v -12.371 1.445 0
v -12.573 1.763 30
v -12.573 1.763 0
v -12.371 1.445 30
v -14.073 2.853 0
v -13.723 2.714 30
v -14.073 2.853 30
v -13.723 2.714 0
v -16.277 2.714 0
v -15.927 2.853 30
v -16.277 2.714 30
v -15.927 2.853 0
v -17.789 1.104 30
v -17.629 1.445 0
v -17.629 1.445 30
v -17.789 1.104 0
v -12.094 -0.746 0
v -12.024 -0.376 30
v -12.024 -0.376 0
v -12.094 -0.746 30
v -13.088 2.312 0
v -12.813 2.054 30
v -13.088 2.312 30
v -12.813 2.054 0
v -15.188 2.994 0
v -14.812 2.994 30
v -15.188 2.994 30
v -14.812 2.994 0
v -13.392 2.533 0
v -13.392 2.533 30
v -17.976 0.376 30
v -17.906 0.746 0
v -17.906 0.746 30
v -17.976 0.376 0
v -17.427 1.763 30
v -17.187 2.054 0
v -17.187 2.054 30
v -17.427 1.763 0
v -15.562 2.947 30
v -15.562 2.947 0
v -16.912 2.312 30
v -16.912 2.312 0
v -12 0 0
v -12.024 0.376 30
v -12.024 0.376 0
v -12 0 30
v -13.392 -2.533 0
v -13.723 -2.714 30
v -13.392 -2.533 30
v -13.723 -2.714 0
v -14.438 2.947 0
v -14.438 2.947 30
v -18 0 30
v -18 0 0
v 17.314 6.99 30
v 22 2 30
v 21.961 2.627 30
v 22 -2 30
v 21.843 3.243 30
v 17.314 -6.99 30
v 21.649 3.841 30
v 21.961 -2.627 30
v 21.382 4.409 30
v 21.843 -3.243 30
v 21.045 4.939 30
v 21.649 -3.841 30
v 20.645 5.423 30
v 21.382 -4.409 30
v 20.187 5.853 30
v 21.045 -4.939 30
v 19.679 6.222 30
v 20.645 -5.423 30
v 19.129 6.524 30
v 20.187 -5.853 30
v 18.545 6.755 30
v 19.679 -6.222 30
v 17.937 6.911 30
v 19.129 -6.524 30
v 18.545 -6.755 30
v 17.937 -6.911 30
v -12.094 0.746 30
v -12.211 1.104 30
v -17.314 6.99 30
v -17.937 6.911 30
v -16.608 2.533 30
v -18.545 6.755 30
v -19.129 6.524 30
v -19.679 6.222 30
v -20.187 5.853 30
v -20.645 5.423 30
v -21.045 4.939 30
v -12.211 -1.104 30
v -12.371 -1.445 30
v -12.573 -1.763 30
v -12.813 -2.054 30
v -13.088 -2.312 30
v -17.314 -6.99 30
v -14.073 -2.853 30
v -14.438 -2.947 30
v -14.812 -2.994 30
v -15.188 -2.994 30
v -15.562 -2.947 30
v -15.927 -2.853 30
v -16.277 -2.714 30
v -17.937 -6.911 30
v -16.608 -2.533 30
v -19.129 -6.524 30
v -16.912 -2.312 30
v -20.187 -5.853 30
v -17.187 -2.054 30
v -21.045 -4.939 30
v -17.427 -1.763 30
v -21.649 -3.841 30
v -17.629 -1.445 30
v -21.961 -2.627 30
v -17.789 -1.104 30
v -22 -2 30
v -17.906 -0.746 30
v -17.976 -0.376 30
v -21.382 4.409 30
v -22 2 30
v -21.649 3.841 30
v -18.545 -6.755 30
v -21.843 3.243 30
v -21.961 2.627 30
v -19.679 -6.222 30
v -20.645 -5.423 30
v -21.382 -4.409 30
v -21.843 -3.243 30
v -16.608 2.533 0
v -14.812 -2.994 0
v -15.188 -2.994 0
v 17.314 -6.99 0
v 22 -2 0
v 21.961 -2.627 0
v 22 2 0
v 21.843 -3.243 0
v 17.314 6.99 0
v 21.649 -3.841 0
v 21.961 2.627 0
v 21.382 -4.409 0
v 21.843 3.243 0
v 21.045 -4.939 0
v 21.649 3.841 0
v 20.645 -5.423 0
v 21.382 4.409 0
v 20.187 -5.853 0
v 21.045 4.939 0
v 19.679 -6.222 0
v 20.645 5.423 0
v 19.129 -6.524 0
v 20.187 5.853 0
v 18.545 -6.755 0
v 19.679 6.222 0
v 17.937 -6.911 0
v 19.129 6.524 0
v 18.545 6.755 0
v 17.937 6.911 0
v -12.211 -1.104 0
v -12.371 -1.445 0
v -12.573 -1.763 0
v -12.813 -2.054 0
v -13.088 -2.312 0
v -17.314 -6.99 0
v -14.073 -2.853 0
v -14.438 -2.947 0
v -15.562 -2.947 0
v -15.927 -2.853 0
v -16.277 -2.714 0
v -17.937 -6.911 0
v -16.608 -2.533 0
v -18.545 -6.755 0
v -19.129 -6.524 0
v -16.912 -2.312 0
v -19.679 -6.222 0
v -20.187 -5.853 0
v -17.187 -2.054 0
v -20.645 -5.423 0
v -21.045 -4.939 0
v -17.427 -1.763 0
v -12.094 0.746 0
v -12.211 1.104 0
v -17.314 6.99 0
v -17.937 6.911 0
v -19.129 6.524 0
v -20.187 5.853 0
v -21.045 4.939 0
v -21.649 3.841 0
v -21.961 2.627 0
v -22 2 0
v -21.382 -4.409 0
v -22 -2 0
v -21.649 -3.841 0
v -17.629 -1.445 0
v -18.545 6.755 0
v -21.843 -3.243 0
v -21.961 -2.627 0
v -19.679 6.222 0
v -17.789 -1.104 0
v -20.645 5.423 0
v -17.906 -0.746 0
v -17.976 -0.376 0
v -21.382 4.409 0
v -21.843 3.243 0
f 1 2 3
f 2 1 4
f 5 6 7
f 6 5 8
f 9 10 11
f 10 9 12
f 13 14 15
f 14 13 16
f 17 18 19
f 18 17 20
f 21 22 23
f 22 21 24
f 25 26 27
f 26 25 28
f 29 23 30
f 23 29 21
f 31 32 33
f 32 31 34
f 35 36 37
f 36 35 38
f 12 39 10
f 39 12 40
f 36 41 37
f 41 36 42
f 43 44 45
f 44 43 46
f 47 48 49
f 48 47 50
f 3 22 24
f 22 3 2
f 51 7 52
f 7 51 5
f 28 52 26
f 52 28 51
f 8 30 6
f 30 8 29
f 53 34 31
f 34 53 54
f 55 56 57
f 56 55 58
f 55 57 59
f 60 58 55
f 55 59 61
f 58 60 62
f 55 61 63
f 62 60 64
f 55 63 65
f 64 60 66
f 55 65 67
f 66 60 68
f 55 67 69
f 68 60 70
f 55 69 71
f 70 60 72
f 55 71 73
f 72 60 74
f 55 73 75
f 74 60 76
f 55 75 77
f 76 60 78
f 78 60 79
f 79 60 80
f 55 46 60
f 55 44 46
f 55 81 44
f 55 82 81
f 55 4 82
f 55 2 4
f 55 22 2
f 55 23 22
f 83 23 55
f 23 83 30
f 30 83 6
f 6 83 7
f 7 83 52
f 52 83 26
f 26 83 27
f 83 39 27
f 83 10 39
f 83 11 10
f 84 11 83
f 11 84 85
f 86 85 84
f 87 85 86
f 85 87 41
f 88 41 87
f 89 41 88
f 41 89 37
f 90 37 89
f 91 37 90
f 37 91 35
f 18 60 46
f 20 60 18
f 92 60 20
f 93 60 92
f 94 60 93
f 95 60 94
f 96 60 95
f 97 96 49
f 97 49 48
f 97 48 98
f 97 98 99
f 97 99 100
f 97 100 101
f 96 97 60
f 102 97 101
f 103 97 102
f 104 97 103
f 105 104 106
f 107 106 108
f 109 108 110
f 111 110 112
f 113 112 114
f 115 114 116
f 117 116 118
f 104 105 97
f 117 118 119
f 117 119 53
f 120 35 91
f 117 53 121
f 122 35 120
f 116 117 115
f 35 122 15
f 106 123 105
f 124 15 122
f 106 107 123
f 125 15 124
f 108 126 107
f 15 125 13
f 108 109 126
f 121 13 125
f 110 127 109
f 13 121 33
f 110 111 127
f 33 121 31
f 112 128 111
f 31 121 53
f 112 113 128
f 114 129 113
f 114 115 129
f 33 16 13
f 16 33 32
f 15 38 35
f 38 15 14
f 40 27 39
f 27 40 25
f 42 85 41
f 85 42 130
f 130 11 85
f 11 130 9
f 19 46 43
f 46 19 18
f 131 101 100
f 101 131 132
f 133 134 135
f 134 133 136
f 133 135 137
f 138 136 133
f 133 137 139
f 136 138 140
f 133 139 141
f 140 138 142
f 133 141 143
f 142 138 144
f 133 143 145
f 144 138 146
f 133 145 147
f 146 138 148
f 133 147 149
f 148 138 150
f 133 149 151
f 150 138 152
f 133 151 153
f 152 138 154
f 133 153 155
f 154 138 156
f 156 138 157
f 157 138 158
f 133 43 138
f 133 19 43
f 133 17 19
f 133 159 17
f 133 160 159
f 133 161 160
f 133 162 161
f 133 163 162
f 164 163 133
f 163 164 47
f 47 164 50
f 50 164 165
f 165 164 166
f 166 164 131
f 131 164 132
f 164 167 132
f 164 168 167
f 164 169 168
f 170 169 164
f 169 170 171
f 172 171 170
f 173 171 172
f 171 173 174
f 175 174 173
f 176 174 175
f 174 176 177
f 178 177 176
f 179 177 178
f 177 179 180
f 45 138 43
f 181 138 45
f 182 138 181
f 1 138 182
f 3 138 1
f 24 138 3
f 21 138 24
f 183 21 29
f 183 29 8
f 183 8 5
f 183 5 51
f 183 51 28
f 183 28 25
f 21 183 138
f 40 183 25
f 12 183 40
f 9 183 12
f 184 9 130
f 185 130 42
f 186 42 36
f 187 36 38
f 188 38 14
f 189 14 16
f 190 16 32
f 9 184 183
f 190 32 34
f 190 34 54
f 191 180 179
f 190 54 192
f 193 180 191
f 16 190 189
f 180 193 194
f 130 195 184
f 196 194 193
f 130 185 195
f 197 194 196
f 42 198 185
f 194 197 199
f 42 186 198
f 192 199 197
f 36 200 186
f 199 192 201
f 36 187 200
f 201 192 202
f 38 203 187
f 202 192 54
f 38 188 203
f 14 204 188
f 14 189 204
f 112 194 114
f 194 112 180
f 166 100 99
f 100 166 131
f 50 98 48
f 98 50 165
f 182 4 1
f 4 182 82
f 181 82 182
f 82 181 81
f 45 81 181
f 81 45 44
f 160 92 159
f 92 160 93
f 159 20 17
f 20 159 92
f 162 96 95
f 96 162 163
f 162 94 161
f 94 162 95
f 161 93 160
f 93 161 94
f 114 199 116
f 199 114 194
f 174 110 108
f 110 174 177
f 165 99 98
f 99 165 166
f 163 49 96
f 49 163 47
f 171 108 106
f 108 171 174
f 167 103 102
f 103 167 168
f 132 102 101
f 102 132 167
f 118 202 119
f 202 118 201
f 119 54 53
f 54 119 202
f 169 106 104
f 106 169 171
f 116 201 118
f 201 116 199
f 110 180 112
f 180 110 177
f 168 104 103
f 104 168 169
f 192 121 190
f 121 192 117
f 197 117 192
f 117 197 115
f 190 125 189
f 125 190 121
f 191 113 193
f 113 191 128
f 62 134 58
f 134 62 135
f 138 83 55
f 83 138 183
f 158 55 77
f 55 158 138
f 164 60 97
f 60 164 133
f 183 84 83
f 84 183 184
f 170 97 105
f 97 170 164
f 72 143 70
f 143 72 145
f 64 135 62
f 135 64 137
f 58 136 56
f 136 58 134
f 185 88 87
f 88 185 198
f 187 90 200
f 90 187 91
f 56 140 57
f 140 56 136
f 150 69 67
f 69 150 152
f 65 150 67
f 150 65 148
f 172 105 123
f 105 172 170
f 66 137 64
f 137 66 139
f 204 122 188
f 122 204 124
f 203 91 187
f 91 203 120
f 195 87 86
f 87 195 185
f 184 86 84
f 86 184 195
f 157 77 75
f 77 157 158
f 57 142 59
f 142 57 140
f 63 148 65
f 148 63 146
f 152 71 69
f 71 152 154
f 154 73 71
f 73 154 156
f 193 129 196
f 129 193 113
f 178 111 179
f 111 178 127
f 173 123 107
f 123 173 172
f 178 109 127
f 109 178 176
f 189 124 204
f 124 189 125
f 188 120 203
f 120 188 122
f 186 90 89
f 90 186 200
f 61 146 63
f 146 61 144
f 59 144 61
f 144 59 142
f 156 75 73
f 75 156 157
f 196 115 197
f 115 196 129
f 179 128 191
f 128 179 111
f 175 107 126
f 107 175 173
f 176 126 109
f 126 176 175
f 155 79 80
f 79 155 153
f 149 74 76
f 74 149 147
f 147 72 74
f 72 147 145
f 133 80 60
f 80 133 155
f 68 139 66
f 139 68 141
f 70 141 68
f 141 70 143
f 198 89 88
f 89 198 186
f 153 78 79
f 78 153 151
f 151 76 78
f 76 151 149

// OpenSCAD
$fn = 50;


difference() {
	union() {
		hull() {
			translate(v = [-17.0000000000, 2.0000000000, 0]) {
				cylinder(h = 30, r = 5);
			}
			translate(v = [17.0000000000, 2.0000000000, 0]) {
				cylinder(h = 30, r = 5);
			}
			translate(v = [-17.0000000000, -2.0000000000, 0]) {
				cylinder(h = 30, r = 5);
			}
			translate(v = [17.0000000000, -2.0000000000, 0]) {
				cylinder(h = 30, r = 5);
			}
		}
	}
	union() {
		translate(v = [-15.0000000000, 0.0000000000, 0]) {
			cylinder(h = 30, r = 3.0000000000);
		}
		translate(v = [-15.0000000000, 0.0000000000, 0]) {
			cylinder(h = 30, r = 1.5000000000);
		}
		translate(v = [-15.0000000000, 0.0000000000, 0]) {
			cylinder(h = 30, r = 1.5000000000);
		}
		translate(v = [-15.0000000000, 0.0000000000, 0]) {
			cylinder(h = 30, r = 1.5000000000);
		}
	}
}
